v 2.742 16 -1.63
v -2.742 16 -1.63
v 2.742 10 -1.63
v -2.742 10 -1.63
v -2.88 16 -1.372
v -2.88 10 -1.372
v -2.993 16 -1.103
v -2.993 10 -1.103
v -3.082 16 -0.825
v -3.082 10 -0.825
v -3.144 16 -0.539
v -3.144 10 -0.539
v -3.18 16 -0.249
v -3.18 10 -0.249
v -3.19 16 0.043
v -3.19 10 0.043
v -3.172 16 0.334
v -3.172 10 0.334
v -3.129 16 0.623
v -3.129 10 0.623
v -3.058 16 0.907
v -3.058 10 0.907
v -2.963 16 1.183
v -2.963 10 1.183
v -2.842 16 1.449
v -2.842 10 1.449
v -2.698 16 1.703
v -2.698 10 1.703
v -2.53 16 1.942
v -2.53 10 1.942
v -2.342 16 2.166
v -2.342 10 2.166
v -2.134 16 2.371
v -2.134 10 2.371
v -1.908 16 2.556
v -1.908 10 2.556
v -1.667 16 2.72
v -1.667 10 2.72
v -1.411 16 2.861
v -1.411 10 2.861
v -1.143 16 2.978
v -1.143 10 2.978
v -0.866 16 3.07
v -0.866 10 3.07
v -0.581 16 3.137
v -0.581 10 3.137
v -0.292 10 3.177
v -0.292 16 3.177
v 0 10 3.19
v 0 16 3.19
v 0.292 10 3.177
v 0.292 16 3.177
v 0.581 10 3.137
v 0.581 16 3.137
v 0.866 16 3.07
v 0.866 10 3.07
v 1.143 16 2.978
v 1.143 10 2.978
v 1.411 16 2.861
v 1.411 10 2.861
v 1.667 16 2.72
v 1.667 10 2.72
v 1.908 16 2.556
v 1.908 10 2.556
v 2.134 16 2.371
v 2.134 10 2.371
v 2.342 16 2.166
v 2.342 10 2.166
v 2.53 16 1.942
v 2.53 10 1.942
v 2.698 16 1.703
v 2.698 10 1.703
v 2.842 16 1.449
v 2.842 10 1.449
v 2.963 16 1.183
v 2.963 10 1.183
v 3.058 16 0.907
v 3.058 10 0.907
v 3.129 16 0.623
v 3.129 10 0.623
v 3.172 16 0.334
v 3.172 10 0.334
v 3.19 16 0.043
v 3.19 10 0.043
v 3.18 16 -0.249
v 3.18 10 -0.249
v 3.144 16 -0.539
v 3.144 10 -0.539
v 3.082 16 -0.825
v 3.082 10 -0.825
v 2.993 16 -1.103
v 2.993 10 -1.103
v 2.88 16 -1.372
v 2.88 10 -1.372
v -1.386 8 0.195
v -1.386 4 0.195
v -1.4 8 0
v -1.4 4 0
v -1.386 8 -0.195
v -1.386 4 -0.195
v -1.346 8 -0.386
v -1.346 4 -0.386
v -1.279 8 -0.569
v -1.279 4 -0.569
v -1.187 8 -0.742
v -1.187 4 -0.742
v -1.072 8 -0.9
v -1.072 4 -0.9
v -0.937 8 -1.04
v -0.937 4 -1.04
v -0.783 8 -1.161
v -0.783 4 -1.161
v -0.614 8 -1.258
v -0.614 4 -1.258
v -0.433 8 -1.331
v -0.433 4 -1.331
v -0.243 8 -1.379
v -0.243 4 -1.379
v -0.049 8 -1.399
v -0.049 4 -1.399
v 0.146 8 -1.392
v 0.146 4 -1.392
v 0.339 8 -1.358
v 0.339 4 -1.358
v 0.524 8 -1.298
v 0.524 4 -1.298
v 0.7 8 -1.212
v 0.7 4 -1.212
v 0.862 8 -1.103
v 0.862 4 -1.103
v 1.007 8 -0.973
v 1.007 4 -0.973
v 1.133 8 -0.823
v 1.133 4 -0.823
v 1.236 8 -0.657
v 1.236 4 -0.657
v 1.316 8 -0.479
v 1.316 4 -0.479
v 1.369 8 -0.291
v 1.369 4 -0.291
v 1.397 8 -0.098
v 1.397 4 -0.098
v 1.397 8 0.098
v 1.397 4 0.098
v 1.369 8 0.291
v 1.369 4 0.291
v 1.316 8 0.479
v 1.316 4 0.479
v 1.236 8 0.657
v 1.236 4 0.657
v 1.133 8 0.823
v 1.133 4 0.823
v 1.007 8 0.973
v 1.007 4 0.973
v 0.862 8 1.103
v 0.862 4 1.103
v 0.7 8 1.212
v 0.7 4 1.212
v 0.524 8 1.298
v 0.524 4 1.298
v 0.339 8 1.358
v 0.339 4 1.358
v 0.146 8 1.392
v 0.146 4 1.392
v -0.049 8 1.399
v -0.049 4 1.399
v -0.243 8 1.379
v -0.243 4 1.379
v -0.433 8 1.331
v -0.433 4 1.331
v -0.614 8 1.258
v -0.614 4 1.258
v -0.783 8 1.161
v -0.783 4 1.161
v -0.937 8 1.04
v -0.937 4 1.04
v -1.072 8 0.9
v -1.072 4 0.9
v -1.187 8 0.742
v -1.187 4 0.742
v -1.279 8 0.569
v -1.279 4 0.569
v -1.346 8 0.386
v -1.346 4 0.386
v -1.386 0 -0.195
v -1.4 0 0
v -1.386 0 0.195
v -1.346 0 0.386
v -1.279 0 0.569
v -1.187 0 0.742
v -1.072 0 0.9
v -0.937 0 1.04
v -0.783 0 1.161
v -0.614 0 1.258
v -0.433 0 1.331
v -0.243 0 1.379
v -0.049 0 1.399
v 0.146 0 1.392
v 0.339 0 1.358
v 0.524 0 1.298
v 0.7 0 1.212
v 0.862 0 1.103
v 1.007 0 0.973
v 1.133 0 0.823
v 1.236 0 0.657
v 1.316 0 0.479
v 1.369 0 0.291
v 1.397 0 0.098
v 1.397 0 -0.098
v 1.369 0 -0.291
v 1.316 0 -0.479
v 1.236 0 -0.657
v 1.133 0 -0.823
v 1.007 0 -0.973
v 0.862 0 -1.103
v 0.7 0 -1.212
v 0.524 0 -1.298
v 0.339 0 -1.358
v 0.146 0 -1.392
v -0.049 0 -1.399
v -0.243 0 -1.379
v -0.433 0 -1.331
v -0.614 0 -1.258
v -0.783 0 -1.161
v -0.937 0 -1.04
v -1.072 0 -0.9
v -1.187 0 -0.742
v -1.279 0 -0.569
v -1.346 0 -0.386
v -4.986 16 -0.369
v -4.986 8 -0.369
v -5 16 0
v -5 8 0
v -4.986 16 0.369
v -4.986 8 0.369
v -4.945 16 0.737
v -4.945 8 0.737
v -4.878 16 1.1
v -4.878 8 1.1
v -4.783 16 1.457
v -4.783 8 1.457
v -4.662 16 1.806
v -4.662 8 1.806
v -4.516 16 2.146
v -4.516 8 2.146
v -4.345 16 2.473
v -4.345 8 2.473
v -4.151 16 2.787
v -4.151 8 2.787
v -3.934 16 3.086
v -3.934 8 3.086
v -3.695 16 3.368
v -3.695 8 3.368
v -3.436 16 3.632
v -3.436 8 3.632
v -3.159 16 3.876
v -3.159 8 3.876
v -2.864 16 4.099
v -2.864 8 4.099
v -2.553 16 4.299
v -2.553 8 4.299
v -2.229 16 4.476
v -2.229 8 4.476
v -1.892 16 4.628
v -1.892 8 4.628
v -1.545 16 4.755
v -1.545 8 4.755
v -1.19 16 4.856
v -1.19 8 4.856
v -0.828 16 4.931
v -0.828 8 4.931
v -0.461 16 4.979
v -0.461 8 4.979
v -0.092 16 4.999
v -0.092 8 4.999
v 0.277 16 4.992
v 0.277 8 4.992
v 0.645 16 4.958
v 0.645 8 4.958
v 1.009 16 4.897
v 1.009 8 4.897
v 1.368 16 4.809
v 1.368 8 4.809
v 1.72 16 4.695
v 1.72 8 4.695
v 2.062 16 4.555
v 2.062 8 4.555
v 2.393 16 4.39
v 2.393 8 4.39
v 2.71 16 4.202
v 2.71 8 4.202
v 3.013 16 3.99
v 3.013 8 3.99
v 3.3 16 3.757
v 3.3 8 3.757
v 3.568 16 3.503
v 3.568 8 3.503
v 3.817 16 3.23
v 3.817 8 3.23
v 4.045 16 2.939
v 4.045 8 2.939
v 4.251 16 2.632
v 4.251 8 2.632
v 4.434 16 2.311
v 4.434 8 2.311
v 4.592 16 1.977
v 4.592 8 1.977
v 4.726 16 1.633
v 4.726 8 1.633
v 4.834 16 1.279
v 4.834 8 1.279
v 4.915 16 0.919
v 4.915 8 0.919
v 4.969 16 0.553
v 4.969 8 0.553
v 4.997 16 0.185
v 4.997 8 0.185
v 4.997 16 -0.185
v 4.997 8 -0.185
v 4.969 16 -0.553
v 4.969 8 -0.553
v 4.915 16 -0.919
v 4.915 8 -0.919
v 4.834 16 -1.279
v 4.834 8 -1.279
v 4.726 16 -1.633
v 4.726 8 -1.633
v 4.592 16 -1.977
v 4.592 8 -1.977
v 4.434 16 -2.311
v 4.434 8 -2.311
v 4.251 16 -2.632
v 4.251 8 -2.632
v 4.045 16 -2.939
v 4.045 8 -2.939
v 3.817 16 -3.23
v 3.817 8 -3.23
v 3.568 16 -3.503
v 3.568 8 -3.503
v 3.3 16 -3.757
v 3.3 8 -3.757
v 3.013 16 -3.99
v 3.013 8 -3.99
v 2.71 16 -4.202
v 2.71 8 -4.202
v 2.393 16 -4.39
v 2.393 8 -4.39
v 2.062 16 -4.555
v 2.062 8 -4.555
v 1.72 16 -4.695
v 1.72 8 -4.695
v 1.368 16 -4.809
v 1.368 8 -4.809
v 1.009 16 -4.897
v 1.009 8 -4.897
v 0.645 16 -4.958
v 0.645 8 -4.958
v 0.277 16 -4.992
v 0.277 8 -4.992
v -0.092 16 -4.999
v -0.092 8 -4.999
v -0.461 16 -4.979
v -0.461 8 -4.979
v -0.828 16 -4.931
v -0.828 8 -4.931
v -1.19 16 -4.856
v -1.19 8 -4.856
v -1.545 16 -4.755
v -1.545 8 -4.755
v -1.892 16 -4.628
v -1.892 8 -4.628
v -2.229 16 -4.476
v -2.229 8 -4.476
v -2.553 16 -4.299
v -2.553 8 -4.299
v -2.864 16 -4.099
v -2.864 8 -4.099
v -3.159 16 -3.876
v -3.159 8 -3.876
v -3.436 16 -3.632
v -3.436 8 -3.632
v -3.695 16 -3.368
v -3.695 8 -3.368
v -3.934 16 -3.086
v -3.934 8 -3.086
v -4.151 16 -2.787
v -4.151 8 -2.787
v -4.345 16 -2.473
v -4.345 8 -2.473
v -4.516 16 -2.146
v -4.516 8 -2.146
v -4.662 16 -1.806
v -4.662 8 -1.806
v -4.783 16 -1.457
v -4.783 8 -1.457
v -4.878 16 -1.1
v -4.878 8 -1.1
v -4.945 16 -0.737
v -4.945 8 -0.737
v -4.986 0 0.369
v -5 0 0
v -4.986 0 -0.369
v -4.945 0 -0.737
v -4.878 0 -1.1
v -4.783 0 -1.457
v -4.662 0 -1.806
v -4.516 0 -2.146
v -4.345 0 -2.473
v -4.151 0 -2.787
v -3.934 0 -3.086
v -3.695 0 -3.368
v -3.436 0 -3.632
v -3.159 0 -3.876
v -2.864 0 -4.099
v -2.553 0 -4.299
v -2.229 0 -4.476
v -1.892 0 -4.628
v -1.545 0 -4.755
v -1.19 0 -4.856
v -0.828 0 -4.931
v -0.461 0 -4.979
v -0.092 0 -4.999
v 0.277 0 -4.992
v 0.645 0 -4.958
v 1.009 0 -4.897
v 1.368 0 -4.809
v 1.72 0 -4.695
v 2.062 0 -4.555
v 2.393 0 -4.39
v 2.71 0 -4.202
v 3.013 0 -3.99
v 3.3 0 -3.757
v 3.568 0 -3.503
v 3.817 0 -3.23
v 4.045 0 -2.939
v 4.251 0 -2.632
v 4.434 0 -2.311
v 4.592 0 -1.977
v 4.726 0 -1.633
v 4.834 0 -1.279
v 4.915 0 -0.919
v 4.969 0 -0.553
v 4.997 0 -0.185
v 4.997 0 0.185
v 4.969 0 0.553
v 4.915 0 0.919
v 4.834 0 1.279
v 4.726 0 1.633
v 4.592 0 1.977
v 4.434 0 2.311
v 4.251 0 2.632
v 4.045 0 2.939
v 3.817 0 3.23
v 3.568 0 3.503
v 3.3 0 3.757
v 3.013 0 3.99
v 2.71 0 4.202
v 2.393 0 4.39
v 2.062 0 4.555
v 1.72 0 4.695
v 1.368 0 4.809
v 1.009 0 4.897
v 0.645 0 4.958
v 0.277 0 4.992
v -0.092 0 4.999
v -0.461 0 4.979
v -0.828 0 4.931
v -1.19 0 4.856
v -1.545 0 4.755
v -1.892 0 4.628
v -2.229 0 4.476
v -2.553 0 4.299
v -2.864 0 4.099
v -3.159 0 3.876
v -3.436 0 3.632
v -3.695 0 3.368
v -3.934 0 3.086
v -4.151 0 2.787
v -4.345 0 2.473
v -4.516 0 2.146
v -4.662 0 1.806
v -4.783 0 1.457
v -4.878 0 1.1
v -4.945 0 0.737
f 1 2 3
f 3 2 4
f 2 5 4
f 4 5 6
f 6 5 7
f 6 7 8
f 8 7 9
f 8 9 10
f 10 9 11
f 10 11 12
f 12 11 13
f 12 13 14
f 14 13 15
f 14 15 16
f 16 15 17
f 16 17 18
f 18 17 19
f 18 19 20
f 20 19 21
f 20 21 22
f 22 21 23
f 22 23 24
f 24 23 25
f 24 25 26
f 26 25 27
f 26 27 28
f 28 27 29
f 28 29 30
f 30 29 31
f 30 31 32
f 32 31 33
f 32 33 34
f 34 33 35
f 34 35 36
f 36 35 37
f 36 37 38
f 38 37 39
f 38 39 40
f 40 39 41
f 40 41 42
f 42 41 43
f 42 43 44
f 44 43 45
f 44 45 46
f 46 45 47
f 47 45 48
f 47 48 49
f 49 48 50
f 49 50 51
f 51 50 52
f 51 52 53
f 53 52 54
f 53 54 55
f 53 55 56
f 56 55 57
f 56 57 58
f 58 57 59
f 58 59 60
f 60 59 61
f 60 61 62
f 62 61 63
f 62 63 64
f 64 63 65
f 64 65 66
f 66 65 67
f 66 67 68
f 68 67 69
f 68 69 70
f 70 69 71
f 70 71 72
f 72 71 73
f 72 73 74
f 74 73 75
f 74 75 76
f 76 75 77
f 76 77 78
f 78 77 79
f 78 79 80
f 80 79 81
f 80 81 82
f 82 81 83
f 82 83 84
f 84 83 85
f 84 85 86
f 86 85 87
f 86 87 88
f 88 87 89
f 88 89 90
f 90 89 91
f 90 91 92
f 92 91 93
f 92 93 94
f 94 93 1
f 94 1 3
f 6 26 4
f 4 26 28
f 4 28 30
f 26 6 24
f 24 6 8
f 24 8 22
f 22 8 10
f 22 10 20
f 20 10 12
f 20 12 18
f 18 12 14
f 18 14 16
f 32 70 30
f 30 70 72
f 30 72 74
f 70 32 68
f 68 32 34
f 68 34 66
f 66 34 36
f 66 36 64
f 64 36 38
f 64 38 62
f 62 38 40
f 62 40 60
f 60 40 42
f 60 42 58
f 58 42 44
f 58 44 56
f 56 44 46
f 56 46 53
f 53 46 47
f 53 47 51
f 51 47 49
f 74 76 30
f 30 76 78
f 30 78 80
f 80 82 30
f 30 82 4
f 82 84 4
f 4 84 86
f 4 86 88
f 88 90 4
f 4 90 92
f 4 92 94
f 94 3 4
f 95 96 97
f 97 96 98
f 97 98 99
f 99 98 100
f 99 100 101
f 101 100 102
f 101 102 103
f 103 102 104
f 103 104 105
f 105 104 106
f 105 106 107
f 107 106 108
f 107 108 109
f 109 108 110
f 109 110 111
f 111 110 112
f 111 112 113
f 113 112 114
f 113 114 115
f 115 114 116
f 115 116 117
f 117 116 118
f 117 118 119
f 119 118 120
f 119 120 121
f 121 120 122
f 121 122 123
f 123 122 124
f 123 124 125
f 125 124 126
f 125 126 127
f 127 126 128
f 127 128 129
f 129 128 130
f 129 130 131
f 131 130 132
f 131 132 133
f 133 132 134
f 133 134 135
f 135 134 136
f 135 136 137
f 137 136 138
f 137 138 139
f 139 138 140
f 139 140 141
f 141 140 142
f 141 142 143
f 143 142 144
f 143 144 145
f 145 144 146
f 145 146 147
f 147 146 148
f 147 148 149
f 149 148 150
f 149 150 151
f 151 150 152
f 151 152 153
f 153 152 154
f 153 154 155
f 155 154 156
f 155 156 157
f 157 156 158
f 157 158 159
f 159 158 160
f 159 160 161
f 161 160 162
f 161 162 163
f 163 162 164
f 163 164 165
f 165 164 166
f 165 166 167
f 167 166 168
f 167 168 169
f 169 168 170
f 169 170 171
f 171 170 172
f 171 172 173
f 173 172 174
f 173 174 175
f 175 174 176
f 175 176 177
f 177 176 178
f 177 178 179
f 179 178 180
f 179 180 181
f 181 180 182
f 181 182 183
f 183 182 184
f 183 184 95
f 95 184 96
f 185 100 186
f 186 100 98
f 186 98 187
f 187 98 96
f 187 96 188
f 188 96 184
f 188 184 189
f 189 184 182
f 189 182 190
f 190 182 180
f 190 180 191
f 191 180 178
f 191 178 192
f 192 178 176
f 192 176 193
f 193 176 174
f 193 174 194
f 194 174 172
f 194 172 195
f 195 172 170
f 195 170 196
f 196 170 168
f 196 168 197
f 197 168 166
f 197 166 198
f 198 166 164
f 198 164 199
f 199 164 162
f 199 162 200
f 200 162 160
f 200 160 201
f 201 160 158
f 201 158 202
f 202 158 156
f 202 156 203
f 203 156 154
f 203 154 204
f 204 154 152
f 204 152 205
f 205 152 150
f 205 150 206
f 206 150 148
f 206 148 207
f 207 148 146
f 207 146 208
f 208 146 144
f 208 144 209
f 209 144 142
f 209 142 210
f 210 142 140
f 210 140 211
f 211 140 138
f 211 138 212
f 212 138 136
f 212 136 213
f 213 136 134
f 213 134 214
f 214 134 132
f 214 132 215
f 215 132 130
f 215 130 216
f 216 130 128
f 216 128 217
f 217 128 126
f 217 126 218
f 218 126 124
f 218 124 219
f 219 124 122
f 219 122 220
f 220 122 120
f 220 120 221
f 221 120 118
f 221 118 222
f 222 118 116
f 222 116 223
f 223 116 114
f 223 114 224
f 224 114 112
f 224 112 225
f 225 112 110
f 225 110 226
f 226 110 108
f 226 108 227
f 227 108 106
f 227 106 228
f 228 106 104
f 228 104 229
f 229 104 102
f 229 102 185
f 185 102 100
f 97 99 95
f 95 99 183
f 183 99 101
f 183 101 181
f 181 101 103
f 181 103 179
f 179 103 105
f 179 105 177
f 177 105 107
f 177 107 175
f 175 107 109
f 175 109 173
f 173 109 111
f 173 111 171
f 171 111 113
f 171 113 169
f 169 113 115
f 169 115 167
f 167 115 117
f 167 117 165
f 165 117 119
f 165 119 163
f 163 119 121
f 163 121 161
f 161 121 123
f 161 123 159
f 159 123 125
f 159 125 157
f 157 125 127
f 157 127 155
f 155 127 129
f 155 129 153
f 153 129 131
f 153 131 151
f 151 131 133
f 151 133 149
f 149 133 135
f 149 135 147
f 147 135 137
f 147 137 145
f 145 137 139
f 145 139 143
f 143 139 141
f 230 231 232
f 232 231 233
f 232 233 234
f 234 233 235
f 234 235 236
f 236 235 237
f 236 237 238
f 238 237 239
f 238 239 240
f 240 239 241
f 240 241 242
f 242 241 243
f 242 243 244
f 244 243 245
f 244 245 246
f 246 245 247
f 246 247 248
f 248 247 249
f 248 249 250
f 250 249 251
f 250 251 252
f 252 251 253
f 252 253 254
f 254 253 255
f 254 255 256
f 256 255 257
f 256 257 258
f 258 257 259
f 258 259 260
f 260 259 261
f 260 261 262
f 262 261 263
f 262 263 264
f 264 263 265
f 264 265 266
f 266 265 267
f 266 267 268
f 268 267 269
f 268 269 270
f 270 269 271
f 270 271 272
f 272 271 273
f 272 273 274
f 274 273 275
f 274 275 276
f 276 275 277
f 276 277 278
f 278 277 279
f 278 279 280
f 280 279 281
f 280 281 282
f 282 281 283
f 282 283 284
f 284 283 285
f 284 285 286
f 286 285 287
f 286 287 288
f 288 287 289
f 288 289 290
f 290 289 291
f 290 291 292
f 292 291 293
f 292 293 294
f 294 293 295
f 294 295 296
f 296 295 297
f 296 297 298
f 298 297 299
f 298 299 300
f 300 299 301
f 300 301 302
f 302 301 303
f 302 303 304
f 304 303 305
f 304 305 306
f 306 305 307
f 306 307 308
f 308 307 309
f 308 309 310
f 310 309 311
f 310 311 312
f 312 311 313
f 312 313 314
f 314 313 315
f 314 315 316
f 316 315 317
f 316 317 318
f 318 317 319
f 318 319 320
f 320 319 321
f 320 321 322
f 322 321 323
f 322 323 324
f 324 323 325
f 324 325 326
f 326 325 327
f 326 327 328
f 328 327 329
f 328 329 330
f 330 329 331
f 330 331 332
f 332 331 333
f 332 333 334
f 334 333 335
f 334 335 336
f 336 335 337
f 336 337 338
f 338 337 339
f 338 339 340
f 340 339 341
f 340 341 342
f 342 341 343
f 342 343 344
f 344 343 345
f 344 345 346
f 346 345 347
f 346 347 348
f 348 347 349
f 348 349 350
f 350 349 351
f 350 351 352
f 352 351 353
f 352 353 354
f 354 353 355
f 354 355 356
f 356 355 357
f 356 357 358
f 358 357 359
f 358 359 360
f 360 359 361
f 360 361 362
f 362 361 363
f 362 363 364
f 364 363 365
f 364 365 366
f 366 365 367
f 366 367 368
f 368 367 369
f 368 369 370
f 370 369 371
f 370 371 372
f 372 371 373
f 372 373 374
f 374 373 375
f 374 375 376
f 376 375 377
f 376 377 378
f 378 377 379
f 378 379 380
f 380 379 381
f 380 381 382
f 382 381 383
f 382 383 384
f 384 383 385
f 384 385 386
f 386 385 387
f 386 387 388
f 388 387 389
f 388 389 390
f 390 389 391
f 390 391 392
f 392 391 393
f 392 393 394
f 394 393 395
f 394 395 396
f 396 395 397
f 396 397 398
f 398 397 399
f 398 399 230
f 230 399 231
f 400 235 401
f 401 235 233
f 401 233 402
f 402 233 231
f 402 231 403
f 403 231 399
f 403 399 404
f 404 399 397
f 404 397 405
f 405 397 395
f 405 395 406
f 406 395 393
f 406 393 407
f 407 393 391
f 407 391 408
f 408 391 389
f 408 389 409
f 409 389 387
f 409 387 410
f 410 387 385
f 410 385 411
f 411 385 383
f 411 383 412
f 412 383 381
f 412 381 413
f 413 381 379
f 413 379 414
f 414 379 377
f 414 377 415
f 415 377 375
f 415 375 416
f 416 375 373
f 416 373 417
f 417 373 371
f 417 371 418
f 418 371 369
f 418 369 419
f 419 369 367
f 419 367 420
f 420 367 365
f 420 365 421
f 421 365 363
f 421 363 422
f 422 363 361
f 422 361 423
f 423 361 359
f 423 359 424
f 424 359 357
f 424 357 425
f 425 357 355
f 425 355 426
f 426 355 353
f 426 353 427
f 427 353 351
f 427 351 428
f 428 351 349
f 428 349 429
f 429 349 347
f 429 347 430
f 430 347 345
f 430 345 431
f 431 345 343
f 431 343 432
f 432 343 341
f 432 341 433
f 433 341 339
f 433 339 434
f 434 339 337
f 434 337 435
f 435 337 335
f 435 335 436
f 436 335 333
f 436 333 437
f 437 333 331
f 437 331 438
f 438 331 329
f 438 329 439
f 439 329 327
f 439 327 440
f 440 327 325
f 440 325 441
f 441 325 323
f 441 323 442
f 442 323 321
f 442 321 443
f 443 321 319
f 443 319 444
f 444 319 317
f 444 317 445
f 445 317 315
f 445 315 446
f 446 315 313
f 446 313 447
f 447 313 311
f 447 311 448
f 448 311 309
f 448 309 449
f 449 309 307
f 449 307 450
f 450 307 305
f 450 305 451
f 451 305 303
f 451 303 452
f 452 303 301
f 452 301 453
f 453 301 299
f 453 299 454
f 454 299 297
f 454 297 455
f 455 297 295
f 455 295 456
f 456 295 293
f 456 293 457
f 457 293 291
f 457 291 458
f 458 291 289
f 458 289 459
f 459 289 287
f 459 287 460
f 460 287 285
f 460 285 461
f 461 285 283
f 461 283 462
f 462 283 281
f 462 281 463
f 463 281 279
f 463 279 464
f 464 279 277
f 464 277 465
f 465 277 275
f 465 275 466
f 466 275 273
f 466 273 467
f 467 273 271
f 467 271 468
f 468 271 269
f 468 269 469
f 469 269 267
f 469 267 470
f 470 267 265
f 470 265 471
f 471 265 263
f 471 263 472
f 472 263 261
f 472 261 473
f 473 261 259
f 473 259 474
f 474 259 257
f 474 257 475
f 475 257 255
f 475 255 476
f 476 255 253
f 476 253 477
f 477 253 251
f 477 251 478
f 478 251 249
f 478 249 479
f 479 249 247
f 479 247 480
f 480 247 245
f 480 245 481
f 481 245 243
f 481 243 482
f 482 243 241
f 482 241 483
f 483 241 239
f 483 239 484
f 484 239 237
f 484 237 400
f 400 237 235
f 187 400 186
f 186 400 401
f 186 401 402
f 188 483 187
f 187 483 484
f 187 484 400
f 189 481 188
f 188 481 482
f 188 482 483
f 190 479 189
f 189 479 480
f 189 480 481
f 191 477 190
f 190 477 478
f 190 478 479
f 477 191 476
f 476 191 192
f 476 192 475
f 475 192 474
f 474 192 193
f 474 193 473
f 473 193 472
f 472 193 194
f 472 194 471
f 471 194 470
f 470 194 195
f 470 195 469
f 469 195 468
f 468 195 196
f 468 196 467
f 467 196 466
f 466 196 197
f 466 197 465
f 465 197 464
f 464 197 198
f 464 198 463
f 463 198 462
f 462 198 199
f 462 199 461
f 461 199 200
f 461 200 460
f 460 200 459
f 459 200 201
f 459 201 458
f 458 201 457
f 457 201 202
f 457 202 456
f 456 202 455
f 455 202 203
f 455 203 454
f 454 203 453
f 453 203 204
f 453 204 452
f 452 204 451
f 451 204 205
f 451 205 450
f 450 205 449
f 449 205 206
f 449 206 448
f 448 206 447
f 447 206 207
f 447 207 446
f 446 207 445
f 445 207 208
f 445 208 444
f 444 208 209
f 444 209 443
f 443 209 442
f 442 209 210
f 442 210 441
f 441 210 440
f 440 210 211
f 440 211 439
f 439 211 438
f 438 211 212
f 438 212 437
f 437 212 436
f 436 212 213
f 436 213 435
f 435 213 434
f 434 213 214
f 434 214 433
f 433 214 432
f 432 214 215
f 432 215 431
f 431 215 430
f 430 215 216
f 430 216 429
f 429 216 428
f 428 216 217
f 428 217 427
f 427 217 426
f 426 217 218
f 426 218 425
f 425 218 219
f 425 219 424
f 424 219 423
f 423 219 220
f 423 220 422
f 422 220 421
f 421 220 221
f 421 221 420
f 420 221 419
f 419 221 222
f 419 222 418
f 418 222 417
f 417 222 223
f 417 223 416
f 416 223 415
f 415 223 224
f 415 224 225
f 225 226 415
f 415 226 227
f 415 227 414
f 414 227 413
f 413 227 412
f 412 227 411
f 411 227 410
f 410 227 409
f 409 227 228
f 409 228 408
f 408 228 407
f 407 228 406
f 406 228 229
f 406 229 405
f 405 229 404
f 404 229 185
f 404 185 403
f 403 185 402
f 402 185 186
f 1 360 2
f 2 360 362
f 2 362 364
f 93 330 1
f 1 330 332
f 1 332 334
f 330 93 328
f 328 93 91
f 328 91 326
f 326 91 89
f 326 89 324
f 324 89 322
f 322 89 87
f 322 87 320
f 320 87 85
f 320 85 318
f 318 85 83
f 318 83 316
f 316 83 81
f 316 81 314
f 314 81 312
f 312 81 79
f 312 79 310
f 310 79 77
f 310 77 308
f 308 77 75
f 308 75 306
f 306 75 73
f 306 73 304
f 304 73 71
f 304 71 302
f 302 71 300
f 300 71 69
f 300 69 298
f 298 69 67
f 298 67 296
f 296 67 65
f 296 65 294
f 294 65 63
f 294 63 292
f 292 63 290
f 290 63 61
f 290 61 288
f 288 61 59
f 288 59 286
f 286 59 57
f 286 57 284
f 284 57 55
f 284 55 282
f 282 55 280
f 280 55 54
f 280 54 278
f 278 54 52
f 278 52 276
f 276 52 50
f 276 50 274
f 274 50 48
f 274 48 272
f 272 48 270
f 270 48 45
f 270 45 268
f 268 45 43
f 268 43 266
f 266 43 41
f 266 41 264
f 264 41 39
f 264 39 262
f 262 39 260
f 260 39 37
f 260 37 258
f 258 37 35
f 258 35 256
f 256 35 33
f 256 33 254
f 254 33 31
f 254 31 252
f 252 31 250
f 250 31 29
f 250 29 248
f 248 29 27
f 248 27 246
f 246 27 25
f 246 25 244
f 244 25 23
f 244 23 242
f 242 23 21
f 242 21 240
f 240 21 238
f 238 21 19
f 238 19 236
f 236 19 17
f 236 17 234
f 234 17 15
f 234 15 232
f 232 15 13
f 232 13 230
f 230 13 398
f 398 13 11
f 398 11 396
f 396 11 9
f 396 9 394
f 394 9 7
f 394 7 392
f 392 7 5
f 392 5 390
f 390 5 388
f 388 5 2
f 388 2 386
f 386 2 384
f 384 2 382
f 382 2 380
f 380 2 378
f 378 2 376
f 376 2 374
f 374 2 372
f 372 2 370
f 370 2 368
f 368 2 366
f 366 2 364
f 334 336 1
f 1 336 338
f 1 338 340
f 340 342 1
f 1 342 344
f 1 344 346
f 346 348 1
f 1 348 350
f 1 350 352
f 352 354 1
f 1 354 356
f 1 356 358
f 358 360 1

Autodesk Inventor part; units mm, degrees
ref_plane "YZ Plane" through (0, 0, 0) normal (1, 0, 0) x (0, 1, 0)
ref_plane "XZ Plane" through (0, 0, 0) normal (0, 1, 0) x (-1, 0, 0)
ref_plane "XY Plane" through (0, 0, 0) normal (0, 0, 1) x (1, 0, 0)
sketch "Sketch1" plane through (0, 0, 0) normal (0, 1, 0) x (-1, 0, 0)
  circle A0 centre (0, 0) radius 1.4
  circle A1 centre (0, 0) radius 5
  circle A2 centre (0, 0) radius 1.115
  dimension "d0" = 2.8
  dimension "d1" = 10
extrude "Extrusion1" add sketch "Sketch1" along normal blind 16 contours A0 | A1 | A2
extrude "Extrusion2" cut sketch "Sketch1" along normal blind 8 contours A0 | A2
sketch "Sketch2" plane through (0, 16, 0) normal (0, 1, 0) x (1, 0, 0)
  circle A0 centre (0, 0) radius 3 construction
  circle A1 centre (0, 0) radius 3.19
  line L0 (-2.8414, 1.45) -> (2.8414, 1.45) construction
  line L1 (-2.7421, 1.63) -> (2.7421, 1.63)
  point P0 (0, -3)
  dimension "d6" = 6
  dimension "d7" = 6.38
  dimension "d8" = 4.45
  dimension "d9" = 0.18
extrude "Extrusion3" cut sketch "Sketch2" against normal blind 6 contours A1 L1 picked at (0.1058, 0.0286)
properties part number "Motor Rotary Encoder Coupler"
